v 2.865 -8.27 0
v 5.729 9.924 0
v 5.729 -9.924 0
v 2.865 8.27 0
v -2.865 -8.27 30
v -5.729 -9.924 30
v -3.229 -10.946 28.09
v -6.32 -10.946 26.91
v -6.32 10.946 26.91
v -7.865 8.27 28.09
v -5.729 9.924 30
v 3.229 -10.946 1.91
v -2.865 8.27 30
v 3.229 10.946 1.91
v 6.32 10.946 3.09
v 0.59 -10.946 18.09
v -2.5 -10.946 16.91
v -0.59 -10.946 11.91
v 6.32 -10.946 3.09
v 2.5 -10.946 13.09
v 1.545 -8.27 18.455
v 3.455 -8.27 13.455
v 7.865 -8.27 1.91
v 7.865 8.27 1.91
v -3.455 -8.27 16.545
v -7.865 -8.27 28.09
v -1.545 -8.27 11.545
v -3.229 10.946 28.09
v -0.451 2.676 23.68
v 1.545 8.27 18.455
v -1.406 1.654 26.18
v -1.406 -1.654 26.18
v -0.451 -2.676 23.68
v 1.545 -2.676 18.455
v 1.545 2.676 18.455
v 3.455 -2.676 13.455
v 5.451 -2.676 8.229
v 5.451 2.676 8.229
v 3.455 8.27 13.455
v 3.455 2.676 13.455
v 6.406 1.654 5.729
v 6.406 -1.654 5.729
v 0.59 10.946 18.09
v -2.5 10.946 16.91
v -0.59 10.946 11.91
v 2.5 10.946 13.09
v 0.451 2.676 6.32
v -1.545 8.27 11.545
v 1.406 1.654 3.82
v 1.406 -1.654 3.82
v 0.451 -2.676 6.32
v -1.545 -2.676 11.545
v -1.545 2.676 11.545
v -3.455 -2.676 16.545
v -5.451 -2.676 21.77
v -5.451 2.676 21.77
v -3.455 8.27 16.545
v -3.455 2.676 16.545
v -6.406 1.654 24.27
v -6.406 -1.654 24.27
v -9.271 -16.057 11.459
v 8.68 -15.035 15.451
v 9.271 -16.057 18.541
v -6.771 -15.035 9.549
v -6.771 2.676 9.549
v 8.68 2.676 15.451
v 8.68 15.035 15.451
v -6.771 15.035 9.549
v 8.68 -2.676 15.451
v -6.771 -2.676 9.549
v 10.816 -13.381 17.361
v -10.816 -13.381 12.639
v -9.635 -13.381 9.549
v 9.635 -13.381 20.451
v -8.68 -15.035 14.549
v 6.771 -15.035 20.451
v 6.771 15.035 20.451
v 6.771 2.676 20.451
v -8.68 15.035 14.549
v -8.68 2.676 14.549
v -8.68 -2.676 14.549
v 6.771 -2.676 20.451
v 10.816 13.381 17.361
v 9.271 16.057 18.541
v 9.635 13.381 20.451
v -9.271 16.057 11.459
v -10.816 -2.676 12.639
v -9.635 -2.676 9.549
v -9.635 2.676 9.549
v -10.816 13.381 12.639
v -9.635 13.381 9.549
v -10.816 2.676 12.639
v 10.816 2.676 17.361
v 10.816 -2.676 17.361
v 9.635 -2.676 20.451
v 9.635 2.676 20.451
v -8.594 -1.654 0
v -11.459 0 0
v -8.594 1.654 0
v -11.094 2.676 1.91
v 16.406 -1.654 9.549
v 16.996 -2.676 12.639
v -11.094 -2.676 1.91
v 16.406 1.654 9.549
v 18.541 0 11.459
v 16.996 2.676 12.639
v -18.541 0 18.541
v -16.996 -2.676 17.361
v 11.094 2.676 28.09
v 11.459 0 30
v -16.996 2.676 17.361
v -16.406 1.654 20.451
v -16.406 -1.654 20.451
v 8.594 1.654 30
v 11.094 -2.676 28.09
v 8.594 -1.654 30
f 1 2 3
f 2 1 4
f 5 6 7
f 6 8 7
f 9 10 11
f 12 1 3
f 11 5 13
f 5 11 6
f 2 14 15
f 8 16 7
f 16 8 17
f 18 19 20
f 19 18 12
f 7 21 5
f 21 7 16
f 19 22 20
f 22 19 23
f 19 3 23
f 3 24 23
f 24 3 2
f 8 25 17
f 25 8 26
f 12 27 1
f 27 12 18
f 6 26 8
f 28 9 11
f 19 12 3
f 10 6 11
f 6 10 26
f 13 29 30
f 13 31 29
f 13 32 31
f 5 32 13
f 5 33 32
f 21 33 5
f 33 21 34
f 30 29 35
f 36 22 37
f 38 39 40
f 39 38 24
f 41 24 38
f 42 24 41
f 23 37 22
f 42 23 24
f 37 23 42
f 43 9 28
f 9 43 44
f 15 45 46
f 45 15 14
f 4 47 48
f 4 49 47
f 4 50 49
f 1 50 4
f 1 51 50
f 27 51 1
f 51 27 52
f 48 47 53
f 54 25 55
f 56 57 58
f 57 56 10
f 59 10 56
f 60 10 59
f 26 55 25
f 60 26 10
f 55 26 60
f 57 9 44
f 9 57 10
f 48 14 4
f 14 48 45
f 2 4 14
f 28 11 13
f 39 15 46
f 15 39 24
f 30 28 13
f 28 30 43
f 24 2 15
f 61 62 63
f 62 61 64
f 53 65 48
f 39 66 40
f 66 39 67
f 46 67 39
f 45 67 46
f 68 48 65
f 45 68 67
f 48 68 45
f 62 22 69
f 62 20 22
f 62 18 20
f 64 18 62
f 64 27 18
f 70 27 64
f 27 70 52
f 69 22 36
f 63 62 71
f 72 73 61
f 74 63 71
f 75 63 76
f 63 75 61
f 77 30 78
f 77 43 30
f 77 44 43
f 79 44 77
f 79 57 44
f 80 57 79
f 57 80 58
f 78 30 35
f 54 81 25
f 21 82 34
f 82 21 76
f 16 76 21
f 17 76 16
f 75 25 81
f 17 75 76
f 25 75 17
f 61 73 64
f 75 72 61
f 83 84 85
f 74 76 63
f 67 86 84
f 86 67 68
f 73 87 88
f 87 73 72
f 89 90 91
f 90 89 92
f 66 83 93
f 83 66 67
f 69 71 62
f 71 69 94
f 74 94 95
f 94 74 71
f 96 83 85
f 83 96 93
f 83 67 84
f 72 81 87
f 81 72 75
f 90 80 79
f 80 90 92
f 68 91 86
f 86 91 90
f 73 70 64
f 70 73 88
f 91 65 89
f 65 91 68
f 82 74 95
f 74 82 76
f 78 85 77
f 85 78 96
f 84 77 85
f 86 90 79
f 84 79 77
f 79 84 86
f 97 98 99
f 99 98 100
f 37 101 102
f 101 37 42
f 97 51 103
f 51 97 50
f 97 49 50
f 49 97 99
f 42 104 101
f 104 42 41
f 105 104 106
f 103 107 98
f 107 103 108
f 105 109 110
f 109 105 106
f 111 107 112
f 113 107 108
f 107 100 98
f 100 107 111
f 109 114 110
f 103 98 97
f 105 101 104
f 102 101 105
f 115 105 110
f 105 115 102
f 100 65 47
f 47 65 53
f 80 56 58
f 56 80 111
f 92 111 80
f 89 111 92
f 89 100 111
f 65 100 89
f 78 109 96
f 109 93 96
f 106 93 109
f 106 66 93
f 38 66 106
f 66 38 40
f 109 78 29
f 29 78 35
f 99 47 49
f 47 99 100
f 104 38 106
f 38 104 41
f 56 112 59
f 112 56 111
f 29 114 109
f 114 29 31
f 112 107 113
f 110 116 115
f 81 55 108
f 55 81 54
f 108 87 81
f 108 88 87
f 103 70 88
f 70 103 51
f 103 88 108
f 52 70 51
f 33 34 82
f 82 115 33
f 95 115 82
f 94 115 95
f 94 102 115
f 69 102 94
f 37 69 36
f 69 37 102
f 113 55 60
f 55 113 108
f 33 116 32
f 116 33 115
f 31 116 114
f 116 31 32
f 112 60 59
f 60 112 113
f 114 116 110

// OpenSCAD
// shape height
sh = 30;
// border width
bw = 5;

include <../polyhedra.scad>;

translate([0, 0, sh / 2])
    face_rotate(icosahedron)
        icosahedron2();

ivert = icosahedron[0];
iface = icosahedron[1];

ifr = face_dist(icosahedron);

ipd = diameter(icosahedron);

module icosahedron0() {
    poly_fill0(icosahedron, ipd, bw);
}

module icosahedron2() {
    s = (sh - bw) / 2 / ifr;
    module h4(a, b, c, d) {
        hull() {
            translate(ivert[a] * s) icosahedron0();
            translate(ivert[b] * s) icosahedron0();
            translate(ivert[c] * s) icosahedron0();
            translate(ivert[d] * s) icosahedron0();
        }
    }
    h4(0, 1, 10, 11);
    h4(4, 5, 6, 7);
    h4(2, 3, 8, 9);
}
